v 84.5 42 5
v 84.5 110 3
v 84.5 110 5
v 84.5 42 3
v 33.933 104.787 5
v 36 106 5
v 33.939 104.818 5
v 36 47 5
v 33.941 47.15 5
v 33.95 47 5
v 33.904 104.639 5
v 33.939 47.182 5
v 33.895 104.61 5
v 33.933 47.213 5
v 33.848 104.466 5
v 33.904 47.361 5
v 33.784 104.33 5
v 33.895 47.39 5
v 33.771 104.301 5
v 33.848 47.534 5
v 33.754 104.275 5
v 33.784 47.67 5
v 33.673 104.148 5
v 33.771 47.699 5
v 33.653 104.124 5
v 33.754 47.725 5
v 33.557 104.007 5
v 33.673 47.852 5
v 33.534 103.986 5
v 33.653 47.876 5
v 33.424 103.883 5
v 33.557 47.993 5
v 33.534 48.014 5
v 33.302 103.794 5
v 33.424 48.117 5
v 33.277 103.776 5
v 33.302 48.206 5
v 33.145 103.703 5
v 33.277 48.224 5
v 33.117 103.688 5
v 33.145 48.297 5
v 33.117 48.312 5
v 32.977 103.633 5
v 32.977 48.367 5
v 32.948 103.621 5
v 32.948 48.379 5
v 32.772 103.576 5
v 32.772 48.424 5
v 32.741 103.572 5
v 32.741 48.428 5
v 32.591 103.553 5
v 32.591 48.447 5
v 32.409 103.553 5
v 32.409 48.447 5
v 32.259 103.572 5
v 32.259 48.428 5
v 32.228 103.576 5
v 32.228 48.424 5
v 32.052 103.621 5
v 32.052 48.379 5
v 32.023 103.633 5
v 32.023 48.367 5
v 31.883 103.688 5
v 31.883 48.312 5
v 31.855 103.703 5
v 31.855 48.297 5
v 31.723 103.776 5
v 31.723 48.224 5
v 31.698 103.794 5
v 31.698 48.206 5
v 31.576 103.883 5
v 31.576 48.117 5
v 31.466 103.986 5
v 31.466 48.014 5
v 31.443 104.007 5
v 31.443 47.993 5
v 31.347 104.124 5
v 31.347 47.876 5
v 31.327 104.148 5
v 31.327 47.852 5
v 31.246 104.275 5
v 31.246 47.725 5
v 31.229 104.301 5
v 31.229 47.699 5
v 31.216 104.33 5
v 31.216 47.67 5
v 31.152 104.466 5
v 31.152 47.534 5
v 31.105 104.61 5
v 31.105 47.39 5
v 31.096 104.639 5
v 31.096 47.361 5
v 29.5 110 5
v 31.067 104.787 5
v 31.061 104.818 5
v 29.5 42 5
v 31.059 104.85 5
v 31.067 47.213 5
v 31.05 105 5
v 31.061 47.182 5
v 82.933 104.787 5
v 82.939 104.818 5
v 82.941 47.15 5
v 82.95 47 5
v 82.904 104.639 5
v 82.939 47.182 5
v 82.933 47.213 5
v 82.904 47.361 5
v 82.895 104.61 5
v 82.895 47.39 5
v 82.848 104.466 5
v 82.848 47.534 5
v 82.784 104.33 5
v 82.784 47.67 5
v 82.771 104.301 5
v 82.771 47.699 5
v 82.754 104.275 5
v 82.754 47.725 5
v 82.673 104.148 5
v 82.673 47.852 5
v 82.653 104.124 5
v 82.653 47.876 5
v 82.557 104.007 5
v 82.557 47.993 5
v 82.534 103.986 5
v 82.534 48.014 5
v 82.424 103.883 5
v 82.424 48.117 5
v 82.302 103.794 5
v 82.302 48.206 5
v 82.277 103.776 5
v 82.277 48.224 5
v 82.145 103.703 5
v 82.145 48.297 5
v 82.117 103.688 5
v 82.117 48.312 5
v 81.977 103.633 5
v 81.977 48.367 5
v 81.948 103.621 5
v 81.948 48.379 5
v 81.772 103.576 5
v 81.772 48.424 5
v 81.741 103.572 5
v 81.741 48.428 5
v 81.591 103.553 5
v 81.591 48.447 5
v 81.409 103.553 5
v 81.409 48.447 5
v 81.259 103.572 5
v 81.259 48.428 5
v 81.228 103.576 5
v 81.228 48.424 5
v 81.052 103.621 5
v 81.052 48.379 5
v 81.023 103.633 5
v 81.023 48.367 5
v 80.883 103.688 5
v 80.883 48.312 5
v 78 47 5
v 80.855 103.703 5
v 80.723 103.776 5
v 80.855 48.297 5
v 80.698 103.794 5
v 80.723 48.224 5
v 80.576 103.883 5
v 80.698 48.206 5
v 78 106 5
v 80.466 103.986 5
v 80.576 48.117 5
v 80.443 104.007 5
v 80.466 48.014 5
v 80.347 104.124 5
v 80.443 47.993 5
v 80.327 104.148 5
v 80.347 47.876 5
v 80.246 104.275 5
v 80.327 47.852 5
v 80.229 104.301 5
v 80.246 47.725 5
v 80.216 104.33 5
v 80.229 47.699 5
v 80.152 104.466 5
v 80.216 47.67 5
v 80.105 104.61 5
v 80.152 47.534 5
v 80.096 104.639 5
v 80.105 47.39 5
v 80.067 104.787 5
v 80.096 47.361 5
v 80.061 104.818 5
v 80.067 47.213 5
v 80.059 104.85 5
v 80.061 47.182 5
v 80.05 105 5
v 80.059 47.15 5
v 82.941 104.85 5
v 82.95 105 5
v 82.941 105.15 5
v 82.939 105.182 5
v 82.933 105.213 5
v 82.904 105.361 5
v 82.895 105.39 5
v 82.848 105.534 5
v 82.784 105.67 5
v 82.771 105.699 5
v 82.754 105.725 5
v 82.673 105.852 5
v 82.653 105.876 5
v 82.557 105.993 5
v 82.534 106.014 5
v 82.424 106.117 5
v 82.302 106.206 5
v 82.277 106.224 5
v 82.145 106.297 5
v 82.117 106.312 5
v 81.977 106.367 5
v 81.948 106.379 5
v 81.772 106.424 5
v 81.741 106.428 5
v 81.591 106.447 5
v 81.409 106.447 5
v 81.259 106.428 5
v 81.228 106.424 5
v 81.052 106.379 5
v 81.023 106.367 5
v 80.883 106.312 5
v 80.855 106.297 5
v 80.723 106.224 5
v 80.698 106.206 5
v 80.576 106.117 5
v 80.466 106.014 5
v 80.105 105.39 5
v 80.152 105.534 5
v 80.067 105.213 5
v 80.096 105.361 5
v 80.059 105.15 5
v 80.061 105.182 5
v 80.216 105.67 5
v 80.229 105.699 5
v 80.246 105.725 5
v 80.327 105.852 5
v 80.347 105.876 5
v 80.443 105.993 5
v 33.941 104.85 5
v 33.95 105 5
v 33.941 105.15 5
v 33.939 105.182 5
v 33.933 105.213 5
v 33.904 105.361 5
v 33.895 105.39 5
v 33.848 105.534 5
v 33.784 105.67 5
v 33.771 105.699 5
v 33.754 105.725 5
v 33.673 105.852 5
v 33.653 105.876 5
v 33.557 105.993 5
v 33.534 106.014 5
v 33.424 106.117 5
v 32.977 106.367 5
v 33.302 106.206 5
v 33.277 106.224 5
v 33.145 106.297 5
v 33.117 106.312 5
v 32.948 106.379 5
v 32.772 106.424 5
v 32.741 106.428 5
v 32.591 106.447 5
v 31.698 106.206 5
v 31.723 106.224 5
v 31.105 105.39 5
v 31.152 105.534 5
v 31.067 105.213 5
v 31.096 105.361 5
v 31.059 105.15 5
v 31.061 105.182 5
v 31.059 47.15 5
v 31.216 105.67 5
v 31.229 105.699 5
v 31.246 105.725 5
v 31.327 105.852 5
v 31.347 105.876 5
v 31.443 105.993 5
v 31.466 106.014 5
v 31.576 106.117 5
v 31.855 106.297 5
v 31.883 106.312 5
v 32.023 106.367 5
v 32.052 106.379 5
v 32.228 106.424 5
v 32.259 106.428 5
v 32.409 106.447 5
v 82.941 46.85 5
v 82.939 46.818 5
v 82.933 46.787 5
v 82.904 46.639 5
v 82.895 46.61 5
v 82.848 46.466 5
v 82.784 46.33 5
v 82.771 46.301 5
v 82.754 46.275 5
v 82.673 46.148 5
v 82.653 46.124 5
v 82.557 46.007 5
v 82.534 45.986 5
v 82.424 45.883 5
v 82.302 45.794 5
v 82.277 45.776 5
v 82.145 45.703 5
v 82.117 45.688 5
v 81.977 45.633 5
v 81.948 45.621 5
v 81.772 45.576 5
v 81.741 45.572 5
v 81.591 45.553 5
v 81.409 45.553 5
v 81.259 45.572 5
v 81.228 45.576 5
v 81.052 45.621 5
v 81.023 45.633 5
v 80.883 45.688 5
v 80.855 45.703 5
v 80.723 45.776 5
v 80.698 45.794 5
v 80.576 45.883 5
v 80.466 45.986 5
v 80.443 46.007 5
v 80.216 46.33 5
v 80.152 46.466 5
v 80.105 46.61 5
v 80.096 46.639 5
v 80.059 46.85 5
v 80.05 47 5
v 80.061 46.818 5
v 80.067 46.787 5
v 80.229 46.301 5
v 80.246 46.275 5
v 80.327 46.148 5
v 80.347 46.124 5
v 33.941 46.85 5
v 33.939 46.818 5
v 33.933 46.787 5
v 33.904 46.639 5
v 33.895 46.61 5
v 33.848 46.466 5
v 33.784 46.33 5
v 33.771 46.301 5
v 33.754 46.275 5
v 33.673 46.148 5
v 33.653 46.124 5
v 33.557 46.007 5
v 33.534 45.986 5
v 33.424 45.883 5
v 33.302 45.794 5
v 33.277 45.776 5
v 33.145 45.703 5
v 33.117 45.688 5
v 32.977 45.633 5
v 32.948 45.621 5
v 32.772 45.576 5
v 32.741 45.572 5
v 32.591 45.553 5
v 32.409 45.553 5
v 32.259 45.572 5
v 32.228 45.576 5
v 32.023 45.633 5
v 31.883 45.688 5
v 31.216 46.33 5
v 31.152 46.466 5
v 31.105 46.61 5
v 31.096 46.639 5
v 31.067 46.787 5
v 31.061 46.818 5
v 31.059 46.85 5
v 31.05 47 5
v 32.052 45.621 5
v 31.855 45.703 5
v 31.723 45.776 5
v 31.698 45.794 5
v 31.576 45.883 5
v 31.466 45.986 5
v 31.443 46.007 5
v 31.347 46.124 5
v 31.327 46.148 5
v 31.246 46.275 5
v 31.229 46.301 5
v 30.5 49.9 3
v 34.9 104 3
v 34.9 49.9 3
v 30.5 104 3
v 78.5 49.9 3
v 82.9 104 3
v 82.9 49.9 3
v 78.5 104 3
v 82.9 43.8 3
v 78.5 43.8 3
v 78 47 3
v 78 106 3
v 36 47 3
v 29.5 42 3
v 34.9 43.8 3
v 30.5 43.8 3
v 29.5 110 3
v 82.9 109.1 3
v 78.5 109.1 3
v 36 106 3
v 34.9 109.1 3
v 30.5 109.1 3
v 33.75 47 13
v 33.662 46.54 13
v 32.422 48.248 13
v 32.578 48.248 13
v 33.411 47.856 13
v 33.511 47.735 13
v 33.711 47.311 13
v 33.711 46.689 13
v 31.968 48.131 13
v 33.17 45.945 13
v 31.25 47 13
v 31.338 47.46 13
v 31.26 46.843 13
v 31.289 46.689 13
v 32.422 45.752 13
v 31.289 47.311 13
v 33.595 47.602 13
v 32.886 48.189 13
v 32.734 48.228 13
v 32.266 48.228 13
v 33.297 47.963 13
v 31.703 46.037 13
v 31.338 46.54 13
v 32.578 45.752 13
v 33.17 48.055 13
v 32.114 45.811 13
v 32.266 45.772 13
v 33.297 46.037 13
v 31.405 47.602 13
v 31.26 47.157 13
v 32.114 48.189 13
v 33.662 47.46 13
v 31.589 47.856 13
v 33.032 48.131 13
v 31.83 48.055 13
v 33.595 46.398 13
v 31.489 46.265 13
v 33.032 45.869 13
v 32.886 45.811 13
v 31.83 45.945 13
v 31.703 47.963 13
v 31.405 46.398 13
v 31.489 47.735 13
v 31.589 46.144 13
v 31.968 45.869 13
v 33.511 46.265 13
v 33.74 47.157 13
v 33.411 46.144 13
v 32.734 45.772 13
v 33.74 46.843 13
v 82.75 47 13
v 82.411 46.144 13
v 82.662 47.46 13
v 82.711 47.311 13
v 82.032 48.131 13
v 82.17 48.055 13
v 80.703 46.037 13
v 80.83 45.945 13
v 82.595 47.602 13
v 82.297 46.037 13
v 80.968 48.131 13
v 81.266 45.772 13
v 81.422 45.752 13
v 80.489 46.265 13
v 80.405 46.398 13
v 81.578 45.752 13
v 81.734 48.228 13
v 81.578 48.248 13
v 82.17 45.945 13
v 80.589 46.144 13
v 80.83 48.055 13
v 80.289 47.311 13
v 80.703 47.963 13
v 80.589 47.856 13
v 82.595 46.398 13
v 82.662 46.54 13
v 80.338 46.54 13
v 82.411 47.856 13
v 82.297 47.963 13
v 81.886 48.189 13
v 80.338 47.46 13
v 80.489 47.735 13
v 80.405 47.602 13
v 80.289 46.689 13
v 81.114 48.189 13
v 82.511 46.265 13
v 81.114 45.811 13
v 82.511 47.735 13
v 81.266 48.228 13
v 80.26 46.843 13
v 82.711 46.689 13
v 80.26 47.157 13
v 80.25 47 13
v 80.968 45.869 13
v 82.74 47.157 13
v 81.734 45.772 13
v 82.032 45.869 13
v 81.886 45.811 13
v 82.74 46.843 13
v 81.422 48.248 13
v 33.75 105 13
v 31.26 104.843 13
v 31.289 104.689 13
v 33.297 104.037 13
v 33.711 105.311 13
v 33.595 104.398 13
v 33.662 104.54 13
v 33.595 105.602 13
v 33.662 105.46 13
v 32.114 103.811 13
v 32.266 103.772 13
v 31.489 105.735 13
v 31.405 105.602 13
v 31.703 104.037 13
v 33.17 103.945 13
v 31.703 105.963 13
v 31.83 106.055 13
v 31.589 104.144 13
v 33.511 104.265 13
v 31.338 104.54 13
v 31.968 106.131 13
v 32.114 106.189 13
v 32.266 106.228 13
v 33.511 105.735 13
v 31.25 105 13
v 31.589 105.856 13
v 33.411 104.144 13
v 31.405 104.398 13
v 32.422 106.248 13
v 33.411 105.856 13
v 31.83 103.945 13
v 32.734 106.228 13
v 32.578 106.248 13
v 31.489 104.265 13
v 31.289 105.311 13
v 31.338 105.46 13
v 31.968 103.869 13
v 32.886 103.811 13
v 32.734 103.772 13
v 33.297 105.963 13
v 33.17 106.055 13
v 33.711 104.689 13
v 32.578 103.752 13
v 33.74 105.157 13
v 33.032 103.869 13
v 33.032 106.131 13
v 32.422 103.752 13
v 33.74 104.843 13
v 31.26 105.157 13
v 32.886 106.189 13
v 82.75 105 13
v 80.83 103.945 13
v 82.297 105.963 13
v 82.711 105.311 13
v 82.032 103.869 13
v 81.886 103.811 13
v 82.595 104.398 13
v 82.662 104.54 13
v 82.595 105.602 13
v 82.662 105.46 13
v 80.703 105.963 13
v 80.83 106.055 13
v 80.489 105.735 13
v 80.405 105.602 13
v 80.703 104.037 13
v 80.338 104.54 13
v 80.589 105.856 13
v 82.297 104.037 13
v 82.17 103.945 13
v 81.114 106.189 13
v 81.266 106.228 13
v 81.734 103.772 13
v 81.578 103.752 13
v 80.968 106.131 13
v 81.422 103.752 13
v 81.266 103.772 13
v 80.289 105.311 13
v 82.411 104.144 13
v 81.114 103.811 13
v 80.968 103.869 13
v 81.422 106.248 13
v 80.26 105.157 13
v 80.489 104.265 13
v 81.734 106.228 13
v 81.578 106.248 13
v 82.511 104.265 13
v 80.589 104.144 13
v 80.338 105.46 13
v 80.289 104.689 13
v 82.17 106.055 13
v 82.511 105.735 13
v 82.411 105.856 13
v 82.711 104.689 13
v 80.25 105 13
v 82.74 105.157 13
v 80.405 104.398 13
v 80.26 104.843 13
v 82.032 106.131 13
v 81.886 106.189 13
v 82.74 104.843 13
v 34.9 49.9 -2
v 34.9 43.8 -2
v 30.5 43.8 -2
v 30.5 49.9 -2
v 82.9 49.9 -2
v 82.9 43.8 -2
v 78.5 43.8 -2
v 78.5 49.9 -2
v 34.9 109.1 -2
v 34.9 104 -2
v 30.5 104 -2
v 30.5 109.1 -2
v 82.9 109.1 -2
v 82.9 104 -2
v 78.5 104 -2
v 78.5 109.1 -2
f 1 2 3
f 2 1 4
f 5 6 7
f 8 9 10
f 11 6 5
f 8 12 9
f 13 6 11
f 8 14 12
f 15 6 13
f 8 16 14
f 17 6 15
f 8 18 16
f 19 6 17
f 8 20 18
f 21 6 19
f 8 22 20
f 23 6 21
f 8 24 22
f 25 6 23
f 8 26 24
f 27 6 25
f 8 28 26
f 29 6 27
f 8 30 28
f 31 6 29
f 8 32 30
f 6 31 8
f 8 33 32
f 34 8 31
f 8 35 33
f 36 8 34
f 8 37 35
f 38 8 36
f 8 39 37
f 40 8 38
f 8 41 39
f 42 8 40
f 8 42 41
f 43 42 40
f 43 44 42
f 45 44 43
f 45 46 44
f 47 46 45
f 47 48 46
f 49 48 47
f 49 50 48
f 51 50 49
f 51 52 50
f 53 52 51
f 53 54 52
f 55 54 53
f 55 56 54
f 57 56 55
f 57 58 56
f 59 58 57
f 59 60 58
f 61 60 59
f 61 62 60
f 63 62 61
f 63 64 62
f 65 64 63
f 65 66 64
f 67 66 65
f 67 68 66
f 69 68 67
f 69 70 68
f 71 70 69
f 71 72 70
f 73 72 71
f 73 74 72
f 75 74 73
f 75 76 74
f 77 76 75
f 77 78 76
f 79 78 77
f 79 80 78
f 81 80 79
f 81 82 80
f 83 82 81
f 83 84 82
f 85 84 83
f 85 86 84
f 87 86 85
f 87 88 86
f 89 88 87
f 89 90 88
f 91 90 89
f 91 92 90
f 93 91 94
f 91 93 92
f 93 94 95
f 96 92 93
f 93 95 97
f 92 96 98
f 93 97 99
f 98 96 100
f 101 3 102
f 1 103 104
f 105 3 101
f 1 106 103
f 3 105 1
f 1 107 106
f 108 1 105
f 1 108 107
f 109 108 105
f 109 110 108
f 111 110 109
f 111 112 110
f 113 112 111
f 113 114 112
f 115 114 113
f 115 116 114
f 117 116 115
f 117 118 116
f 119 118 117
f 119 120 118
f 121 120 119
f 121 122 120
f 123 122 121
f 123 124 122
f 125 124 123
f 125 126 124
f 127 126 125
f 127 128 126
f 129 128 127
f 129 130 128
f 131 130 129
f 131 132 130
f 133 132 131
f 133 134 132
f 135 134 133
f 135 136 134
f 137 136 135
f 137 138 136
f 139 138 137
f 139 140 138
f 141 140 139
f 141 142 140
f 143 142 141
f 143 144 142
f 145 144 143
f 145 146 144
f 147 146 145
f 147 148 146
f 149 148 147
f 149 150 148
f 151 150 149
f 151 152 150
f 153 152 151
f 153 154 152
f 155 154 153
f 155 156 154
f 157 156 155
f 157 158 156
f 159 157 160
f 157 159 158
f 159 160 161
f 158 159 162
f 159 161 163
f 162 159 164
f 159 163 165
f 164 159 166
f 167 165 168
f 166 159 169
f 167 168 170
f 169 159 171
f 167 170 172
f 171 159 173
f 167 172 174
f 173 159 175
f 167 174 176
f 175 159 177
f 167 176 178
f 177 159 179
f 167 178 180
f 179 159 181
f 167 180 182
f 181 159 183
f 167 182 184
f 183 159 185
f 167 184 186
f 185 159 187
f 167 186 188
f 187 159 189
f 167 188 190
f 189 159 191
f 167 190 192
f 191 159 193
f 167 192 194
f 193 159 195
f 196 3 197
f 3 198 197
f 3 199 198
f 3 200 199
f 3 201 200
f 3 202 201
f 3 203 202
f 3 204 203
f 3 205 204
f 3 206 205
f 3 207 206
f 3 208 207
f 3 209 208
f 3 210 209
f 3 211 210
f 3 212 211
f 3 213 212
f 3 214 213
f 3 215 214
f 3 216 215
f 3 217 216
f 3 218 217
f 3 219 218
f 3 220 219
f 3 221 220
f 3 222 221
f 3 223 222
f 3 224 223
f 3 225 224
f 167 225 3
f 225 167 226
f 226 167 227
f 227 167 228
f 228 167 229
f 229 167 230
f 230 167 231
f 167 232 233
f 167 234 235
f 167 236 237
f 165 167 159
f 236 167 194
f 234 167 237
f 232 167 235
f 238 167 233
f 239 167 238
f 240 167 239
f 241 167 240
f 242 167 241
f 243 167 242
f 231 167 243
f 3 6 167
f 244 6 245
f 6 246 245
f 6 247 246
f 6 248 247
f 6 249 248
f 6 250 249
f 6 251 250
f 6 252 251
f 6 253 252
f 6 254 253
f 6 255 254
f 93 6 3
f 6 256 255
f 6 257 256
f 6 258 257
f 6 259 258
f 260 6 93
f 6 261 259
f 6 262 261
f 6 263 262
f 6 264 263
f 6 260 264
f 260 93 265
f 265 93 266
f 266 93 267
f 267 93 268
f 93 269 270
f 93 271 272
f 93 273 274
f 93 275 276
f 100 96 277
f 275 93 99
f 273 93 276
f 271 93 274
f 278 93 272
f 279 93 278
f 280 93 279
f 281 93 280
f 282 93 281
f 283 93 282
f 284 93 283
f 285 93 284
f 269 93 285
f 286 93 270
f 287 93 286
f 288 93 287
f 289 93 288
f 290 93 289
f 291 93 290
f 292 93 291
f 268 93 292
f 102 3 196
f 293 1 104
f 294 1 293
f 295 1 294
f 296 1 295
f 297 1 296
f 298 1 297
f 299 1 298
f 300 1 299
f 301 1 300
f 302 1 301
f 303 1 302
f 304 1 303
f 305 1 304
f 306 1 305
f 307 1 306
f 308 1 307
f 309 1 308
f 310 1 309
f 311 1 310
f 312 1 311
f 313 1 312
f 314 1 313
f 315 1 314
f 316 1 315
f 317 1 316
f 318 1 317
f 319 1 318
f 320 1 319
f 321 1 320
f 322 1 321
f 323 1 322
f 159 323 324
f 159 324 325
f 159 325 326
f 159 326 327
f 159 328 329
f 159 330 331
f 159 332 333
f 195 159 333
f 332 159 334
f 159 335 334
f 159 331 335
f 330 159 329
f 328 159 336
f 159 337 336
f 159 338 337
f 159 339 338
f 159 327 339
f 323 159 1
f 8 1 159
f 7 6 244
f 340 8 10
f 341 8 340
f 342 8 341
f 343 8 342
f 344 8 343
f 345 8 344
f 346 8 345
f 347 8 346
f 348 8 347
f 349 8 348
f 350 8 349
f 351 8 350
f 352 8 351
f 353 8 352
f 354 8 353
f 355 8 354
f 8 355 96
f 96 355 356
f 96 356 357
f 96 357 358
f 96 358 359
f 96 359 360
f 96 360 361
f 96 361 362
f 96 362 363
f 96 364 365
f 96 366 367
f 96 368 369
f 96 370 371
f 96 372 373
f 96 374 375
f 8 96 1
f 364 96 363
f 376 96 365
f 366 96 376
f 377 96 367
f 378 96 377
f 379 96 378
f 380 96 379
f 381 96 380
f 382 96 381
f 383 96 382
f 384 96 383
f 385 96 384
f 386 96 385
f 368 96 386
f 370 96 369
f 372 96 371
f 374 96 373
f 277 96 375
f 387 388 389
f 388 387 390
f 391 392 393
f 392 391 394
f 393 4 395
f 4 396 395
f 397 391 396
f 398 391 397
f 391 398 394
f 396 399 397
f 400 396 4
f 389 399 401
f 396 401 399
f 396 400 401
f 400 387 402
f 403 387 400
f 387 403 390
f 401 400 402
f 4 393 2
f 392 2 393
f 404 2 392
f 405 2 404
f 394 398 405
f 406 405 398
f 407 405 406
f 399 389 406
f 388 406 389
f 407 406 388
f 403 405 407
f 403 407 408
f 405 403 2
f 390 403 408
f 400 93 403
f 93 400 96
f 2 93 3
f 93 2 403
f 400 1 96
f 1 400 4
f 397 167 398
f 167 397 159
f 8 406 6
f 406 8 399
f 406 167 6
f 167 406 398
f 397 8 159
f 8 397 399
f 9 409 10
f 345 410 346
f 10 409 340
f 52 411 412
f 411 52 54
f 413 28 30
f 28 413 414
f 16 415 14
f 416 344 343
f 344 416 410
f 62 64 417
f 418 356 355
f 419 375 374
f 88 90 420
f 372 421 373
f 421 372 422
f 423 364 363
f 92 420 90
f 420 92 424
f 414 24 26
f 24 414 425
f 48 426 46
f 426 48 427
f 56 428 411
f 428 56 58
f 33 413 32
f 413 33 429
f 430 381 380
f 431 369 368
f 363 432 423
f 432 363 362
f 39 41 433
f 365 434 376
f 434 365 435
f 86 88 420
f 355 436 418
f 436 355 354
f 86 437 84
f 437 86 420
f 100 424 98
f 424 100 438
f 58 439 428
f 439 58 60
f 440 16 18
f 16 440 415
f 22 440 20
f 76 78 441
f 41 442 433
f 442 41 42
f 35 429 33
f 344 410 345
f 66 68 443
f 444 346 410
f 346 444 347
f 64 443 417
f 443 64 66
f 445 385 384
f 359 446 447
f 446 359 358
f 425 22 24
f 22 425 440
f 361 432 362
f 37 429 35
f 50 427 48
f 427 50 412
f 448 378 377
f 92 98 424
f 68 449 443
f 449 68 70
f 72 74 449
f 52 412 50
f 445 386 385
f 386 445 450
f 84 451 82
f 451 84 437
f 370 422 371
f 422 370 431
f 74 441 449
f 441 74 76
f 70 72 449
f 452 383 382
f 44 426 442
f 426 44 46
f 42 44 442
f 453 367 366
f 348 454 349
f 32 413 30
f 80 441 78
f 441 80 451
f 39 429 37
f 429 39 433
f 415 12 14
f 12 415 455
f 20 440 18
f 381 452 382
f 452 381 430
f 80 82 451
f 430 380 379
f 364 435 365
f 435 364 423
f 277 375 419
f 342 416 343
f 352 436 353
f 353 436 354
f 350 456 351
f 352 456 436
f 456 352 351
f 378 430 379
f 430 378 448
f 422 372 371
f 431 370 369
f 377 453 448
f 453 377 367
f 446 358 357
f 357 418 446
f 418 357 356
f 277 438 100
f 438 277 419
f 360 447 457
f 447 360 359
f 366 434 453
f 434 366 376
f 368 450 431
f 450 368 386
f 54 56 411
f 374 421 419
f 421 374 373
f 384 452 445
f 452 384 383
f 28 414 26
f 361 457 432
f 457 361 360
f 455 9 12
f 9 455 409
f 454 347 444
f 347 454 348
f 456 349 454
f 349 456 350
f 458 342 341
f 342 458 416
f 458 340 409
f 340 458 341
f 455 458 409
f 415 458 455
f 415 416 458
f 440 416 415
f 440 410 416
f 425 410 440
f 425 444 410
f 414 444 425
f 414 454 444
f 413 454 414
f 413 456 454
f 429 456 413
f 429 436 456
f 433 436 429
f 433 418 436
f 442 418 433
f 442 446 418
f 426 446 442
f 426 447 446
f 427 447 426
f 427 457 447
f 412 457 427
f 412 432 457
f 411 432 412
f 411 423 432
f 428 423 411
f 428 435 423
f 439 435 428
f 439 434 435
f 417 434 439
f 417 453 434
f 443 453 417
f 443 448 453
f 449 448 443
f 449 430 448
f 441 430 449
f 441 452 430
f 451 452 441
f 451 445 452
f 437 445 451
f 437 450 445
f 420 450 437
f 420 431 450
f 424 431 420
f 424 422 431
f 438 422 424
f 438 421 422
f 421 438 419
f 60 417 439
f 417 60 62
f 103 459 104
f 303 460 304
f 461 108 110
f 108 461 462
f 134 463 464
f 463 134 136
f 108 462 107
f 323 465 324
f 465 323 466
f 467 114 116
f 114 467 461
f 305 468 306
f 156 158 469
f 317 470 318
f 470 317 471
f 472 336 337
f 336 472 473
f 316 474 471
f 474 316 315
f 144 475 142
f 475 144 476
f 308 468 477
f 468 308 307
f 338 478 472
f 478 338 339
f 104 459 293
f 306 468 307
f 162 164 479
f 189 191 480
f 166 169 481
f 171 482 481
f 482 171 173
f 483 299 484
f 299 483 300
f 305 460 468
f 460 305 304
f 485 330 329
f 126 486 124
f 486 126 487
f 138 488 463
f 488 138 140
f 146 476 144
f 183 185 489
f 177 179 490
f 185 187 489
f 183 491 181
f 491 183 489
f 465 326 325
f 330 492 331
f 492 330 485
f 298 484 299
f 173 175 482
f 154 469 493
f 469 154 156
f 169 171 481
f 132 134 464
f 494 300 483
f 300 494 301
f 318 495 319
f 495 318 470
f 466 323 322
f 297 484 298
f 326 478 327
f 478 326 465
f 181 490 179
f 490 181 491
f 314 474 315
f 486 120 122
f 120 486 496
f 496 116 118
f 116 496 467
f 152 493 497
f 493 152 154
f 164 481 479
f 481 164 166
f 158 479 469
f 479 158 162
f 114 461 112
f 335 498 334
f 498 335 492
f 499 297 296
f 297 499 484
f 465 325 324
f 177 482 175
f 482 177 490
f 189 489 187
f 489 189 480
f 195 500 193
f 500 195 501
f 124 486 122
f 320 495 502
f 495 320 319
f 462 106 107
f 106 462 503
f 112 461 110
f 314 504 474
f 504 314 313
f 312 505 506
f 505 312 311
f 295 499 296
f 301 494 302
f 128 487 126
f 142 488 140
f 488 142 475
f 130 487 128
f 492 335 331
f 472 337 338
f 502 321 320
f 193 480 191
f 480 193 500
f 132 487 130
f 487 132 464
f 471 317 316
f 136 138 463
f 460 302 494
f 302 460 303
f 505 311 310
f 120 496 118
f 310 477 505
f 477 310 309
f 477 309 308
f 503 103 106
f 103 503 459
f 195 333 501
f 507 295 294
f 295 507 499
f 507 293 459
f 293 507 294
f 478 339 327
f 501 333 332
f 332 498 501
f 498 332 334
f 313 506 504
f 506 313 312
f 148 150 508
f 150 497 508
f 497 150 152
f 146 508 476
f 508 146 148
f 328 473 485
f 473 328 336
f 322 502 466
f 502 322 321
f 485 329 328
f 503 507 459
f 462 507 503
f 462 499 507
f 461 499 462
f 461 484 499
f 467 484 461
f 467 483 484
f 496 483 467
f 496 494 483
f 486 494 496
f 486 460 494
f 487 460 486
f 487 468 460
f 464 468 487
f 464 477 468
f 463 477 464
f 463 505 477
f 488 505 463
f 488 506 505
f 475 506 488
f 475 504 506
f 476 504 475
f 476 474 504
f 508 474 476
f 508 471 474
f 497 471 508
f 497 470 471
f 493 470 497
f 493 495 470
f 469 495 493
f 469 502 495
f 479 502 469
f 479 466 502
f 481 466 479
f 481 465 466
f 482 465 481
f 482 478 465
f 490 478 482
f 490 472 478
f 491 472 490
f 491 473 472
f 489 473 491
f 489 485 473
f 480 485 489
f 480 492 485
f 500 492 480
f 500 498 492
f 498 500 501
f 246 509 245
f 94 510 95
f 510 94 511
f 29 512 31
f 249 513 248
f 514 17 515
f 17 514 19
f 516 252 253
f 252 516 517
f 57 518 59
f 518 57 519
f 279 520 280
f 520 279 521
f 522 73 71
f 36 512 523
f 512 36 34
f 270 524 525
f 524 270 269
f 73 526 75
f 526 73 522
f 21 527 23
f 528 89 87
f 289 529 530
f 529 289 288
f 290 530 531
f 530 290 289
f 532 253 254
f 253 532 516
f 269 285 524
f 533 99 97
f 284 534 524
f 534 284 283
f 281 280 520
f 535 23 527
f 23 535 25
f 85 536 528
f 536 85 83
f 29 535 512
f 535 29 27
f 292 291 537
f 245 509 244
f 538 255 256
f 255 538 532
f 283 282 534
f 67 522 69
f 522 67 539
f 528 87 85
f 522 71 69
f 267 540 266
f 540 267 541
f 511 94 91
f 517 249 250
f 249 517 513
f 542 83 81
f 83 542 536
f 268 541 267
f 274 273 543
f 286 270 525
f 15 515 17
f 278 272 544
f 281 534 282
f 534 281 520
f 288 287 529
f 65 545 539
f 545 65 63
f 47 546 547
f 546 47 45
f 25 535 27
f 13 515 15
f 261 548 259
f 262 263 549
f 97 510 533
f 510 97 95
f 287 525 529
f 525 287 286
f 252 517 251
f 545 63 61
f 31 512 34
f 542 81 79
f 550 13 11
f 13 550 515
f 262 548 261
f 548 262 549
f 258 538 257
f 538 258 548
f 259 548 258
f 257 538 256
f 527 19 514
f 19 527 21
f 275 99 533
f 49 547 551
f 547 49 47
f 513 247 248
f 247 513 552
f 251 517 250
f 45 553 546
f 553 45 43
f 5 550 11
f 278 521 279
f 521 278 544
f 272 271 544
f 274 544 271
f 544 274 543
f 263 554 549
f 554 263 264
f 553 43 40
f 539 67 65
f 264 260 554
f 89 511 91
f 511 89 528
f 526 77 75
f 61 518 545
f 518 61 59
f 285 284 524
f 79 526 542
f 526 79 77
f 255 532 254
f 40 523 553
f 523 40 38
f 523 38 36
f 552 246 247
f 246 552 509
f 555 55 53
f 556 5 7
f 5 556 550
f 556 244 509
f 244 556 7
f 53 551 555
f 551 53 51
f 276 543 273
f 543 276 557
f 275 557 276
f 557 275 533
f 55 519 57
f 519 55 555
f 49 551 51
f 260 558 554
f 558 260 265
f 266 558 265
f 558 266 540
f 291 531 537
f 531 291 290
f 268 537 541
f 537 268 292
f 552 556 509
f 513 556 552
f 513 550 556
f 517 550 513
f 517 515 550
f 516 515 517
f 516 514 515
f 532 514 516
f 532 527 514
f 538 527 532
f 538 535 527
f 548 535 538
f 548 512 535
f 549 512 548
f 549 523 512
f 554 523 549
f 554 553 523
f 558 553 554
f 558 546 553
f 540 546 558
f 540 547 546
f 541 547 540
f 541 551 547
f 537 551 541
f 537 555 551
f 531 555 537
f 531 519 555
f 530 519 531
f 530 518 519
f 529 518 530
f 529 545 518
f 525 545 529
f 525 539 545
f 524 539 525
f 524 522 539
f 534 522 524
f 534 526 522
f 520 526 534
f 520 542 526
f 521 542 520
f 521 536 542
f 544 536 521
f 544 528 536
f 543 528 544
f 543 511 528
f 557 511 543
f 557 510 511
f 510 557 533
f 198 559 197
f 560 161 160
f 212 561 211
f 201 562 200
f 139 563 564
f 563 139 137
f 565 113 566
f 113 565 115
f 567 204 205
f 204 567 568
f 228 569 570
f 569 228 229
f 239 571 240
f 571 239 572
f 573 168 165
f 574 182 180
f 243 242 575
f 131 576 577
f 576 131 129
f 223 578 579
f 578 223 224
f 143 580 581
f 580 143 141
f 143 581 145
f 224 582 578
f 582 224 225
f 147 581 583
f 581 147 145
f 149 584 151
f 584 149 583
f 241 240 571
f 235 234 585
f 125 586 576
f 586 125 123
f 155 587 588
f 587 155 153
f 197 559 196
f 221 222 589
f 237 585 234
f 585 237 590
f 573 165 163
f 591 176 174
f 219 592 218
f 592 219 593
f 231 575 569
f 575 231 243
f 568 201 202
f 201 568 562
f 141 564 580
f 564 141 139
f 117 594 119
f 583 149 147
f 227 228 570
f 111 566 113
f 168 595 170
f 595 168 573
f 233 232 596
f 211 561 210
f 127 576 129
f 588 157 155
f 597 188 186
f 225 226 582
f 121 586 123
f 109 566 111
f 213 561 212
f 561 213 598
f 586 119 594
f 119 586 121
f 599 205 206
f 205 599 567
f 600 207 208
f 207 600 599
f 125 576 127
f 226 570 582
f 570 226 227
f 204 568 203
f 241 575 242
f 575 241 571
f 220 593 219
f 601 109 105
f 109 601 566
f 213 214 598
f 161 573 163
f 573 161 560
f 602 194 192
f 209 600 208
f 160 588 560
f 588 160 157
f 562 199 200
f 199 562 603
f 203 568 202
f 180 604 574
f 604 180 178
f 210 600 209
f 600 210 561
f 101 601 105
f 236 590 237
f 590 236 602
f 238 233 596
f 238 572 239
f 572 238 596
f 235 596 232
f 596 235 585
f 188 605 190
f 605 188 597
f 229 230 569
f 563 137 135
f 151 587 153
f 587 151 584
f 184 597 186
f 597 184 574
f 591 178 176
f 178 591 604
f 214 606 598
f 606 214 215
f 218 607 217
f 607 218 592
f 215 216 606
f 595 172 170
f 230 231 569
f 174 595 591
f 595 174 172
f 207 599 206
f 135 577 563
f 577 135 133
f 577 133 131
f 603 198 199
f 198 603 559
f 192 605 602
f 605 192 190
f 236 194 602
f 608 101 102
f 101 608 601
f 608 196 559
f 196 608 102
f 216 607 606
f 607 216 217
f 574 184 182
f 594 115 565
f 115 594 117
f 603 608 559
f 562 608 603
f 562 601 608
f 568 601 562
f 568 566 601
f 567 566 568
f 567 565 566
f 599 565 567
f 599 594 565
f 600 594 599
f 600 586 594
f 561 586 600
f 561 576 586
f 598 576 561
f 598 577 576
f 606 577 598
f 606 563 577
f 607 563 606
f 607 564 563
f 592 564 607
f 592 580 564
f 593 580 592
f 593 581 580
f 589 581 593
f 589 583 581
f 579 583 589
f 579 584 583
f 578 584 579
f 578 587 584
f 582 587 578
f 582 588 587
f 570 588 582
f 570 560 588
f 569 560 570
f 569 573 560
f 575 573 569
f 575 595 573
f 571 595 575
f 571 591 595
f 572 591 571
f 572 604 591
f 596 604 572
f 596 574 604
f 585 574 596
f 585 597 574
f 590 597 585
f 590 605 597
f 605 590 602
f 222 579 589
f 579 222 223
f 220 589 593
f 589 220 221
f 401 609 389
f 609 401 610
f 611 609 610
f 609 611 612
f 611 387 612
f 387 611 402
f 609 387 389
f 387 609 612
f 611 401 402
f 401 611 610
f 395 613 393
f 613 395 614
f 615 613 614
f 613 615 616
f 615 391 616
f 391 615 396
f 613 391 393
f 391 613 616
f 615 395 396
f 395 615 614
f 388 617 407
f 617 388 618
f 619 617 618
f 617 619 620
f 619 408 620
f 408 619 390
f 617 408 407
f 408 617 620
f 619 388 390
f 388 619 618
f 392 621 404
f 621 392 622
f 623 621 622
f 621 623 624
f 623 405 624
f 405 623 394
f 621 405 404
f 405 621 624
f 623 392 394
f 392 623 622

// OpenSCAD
//include <lib-raspberry.scad>
//bed(vent=true);
$fn=50;
translate ([32.5,47,3])
union () {
  translate([-3,-5,0]) difference () {
    cube([55,68,2]);
    //cube([55,91,2]);
    translate([6.5,5,0]) cube([42,59,2]);
    //translate([6.5,62,0]) cube([42,25,2]);
  }
  cylinder(10,1.5,1.25);
  translate([49,0,0]) cylinder(10,1.5,1.25);
  translate([0,58,0]) cylinder(10,1.5,1.25);
  translate([49,58,0]) cylinder(10,1.5,1.25);
  translate([-2,-3.2,-5]) cube([4.4,6.1,5]);
  translate([46,-3.2,-5]) cube([4.4,6.1,5]);
  translate([-2,57,-5]) cube([4.4,5.1,5]);
  translate([46,57,-5]) cube([4.4,5.1,5]);

}
